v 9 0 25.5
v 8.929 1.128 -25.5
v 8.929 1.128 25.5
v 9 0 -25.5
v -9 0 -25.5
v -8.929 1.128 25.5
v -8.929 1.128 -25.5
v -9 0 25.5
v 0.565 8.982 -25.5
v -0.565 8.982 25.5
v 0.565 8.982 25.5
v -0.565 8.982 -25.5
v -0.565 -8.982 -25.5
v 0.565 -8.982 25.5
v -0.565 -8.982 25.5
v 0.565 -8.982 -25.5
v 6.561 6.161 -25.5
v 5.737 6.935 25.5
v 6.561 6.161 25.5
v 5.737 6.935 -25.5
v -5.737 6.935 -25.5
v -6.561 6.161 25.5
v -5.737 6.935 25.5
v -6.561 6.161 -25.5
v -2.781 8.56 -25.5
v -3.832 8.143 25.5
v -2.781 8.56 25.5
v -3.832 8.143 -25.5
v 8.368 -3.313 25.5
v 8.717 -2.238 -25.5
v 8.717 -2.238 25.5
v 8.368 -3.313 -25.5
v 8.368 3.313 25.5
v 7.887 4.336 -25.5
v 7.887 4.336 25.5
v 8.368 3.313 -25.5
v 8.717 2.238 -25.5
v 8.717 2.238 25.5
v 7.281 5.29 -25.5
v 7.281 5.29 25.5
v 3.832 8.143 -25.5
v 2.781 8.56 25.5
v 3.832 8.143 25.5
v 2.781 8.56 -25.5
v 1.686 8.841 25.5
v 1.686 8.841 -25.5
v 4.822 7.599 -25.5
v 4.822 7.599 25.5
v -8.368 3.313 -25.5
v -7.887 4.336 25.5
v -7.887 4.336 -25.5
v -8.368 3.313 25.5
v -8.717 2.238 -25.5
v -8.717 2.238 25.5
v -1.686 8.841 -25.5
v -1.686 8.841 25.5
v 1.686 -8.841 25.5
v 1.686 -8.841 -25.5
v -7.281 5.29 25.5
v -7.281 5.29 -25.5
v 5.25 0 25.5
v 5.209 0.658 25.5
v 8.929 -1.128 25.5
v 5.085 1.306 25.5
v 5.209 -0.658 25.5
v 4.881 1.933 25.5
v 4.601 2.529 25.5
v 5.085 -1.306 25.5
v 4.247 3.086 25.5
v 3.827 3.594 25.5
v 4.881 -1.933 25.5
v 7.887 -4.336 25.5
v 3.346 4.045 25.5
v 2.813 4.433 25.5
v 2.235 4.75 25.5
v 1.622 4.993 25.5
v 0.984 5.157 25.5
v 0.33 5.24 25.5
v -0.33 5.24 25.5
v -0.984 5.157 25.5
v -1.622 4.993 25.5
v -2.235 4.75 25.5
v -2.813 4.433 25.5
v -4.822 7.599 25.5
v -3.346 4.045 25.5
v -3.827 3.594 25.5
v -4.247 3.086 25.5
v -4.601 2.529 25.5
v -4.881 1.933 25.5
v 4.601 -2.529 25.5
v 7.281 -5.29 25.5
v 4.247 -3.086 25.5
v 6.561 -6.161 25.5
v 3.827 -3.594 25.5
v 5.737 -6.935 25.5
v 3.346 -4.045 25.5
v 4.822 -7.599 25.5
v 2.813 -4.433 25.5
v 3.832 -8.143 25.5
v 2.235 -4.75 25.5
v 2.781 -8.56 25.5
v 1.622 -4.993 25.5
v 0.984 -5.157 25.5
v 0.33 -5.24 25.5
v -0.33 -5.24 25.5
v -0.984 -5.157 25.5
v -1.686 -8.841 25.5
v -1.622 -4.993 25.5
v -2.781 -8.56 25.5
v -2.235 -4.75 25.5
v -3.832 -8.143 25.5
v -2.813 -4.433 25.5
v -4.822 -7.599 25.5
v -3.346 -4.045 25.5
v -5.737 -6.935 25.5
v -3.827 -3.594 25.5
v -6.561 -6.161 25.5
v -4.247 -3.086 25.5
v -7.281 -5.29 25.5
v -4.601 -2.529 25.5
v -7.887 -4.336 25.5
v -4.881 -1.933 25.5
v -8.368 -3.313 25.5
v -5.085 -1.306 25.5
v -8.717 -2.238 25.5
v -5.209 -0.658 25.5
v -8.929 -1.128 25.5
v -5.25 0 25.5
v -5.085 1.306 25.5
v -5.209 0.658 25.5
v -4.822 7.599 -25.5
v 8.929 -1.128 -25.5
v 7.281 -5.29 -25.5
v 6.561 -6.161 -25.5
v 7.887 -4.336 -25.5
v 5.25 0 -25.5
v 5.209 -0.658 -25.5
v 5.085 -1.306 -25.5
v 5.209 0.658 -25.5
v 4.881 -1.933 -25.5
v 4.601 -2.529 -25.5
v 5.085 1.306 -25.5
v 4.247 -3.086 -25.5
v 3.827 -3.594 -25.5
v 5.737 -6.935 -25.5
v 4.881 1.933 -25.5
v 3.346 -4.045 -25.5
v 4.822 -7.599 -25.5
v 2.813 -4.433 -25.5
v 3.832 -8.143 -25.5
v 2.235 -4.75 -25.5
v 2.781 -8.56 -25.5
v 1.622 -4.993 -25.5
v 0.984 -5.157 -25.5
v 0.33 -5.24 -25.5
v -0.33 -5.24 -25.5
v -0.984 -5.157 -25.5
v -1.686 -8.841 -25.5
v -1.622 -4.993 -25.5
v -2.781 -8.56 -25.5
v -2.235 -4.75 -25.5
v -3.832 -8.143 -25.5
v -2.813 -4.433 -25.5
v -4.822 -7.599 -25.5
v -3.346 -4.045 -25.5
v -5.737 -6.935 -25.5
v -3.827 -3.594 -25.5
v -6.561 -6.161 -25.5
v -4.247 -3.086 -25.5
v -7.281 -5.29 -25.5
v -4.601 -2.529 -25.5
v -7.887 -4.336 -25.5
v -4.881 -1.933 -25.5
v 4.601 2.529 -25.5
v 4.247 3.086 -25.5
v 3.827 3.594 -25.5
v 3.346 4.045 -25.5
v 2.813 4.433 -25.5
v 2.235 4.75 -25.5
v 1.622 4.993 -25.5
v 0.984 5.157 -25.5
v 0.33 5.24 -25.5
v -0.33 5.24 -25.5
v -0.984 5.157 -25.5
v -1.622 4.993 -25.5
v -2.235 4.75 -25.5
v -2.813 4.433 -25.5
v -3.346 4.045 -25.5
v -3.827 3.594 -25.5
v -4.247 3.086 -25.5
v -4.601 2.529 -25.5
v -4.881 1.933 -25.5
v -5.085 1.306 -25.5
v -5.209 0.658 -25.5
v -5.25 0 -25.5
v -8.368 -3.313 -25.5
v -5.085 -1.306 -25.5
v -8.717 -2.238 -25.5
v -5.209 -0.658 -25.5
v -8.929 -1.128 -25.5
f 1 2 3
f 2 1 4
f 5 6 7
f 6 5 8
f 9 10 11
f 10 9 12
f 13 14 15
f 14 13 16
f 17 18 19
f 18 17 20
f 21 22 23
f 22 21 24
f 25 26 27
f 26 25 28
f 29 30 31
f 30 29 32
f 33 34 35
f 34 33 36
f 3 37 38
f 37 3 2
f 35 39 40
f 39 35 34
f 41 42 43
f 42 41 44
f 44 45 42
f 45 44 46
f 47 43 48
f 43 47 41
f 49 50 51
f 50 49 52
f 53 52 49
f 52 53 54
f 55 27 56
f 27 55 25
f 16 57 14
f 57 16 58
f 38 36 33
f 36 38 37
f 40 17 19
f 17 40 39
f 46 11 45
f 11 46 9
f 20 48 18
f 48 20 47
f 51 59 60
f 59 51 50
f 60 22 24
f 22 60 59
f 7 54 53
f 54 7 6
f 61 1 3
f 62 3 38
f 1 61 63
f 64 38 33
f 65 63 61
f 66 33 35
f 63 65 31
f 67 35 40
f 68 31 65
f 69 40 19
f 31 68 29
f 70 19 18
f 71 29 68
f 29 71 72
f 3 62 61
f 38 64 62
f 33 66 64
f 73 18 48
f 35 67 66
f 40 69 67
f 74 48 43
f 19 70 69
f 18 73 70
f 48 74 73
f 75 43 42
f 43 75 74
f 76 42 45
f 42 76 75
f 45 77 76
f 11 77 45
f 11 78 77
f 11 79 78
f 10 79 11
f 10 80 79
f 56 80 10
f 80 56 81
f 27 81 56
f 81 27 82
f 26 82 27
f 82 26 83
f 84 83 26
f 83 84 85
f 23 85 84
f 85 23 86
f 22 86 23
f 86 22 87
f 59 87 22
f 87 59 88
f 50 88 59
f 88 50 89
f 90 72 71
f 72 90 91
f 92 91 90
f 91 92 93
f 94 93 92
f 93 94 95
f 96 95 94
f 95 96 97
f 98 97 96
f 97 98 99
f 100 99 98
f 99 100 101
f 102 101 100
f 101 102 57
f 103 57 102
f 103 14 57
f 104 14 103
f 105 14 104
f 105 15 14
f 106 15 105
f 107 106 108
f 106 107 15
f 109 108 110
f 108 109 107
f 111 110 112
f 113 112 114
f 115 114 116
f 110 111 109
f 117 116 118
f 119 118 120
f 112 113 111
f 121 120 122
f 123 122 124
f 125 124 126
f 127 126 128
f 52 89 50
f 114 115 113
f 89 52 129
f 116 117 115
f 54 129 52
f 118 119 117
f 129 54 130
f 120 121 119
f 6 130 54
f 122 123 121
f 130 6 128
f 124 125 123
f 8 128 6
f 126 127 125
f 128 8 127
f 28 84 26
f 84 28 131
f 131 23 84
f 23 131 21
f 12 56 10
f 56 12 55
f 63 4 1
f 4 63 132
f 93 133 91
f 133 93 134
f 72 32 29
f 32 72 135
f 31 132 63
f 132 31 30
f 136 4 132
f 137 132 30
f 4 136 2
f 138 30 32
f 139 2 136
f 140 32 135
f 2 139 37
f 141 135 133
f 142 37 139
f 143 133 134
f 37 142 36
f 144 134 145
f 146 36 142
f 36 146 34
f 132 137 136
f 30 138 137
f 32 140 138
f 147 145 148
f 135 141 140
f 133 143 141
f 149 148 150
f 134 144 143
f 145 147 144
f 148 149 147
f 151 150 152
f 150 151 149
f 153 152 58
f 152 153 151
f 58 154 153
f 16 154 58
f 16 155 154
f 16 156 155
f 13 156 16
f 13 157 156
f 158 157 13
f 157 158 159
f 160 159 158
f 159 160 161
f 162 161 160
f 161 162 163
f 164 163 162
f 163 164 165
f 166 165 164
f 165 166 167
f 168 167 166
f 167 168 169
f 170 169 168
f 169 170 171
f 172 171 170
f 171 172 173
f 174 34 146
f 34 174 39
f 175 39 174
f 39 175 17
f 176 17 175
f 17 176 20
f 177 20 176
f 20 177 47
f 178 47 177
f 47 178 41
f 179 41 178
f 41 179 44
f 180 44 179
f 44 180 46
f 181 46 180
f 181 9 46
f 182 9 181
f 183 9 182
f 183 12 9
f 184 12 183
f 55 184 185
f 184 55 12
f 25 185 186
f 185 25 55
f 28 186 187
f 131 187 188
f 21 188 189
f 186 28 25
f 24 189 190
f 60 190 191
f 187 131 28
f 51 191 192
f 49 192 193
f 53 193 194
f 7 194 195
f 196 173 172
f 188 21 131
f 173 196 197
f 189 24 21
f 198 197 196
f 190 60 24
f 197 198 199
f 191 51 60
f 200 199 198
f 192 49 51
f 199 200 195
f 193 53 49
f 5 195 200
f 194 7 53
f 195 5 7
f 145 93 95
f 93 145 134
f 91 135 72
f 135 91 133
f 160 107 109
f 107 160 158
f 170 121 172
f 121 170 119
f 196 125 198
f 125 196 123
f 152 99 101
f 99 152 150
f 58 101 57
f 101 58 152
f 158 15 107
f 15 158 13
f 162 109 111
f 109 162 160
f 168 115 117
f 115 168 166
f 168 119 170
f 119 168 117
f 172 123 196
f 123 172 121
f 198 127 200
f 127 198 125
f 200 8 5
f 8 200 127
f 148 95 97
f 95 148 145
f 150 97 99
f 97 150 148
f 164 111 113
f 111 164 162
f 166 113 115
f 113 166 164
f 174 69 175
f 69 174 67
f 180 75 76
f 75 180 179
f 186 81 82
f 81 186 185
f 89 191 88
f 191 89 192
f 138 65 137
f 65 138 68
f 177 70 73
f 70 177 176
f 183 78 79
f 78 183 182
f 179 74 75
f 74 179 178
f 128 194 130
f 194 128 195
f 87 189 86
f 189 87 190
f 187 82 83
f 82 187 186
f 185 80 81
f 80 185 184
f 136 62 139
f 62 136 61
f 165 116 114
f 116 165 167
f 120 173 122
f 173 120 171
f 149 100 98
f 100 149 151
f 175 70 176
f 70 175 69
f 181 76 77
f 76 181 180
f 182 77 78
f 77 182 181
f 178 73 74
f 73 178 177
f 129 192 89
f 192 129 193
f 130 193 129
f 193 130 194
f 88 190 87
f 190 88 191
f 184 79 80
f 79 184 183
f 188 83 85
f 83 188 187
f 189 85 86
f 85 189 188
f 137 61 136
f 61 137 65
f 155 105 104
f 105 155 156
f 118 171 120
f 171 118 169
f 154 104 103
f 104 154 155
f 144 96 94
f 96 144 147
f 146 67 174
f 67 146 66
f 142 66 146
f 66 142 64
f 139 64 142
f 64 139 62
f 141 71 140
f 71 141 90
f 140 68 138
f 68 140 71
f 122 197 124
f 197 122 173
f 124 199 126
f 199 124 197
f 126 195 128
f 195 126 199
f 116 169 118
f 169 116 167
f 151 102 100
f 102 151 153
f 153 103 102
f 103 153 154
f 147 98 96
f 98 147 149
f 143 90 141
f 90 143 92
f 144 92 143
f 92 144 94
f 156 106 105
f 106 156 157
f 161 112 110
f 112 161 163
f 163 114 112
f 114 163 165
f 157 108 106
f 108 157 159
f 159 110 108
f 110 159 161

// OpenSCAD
$fn = 50;


difference() {
	union() {
		translate(v = [0, 0, -25.5000000000]) {
			cylinder(h = 51, r = 9.0000000000);
		}
	}
	union() {
		translate(v = [0, 0, -100.0000000000]) {
			cylinder(h = 200, r = 5.2500000000);
		}
	}
}
